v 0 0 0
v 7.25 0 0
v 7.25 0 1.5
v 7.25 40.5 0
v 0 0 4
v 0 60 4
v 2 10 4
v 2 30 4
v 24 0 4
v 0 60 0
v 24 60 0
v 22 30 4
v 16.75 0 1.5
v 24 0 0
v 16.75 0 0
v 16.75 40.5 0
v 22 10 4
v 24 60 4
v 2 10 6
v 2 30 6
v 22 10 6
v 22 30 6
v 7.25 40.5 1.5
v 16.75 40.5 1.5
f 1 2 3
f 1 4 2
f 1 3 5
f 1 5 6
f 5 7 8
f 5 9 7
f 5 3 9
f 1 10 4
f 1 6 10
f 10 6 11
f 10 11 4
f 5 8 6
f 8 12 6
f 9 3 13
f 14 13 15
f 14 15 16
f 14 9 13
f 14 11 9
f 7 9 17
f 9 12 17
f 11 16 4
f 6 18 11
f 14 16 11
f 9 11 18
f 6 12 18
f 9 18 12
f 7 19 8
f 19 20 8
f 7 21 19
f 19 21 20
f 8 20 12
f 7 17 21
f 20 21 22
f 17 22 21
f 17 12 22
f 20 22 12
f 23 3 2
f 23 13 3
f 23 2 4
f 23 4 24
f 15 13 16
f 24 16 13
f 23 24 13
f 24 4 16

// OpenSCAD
// Toccata stage-0 C09b - 누름판 (발 20×20, 강철 블록 자리) (generated by make_stage0.py; print orientation, z = build direction)
$fn = 64;
difference(){
union(){
translate([0.0000,0.0000,0.0000]) cube([24.0000,60.0000,4.0000]);
translate([2.0000,10.0000,3.9900]) cube([20.0000,20.0000,2.0100]);
}
translate([7.2500,0.0000,-1.0000]) cube([9.5000,40.5000,2.5000]);
}
